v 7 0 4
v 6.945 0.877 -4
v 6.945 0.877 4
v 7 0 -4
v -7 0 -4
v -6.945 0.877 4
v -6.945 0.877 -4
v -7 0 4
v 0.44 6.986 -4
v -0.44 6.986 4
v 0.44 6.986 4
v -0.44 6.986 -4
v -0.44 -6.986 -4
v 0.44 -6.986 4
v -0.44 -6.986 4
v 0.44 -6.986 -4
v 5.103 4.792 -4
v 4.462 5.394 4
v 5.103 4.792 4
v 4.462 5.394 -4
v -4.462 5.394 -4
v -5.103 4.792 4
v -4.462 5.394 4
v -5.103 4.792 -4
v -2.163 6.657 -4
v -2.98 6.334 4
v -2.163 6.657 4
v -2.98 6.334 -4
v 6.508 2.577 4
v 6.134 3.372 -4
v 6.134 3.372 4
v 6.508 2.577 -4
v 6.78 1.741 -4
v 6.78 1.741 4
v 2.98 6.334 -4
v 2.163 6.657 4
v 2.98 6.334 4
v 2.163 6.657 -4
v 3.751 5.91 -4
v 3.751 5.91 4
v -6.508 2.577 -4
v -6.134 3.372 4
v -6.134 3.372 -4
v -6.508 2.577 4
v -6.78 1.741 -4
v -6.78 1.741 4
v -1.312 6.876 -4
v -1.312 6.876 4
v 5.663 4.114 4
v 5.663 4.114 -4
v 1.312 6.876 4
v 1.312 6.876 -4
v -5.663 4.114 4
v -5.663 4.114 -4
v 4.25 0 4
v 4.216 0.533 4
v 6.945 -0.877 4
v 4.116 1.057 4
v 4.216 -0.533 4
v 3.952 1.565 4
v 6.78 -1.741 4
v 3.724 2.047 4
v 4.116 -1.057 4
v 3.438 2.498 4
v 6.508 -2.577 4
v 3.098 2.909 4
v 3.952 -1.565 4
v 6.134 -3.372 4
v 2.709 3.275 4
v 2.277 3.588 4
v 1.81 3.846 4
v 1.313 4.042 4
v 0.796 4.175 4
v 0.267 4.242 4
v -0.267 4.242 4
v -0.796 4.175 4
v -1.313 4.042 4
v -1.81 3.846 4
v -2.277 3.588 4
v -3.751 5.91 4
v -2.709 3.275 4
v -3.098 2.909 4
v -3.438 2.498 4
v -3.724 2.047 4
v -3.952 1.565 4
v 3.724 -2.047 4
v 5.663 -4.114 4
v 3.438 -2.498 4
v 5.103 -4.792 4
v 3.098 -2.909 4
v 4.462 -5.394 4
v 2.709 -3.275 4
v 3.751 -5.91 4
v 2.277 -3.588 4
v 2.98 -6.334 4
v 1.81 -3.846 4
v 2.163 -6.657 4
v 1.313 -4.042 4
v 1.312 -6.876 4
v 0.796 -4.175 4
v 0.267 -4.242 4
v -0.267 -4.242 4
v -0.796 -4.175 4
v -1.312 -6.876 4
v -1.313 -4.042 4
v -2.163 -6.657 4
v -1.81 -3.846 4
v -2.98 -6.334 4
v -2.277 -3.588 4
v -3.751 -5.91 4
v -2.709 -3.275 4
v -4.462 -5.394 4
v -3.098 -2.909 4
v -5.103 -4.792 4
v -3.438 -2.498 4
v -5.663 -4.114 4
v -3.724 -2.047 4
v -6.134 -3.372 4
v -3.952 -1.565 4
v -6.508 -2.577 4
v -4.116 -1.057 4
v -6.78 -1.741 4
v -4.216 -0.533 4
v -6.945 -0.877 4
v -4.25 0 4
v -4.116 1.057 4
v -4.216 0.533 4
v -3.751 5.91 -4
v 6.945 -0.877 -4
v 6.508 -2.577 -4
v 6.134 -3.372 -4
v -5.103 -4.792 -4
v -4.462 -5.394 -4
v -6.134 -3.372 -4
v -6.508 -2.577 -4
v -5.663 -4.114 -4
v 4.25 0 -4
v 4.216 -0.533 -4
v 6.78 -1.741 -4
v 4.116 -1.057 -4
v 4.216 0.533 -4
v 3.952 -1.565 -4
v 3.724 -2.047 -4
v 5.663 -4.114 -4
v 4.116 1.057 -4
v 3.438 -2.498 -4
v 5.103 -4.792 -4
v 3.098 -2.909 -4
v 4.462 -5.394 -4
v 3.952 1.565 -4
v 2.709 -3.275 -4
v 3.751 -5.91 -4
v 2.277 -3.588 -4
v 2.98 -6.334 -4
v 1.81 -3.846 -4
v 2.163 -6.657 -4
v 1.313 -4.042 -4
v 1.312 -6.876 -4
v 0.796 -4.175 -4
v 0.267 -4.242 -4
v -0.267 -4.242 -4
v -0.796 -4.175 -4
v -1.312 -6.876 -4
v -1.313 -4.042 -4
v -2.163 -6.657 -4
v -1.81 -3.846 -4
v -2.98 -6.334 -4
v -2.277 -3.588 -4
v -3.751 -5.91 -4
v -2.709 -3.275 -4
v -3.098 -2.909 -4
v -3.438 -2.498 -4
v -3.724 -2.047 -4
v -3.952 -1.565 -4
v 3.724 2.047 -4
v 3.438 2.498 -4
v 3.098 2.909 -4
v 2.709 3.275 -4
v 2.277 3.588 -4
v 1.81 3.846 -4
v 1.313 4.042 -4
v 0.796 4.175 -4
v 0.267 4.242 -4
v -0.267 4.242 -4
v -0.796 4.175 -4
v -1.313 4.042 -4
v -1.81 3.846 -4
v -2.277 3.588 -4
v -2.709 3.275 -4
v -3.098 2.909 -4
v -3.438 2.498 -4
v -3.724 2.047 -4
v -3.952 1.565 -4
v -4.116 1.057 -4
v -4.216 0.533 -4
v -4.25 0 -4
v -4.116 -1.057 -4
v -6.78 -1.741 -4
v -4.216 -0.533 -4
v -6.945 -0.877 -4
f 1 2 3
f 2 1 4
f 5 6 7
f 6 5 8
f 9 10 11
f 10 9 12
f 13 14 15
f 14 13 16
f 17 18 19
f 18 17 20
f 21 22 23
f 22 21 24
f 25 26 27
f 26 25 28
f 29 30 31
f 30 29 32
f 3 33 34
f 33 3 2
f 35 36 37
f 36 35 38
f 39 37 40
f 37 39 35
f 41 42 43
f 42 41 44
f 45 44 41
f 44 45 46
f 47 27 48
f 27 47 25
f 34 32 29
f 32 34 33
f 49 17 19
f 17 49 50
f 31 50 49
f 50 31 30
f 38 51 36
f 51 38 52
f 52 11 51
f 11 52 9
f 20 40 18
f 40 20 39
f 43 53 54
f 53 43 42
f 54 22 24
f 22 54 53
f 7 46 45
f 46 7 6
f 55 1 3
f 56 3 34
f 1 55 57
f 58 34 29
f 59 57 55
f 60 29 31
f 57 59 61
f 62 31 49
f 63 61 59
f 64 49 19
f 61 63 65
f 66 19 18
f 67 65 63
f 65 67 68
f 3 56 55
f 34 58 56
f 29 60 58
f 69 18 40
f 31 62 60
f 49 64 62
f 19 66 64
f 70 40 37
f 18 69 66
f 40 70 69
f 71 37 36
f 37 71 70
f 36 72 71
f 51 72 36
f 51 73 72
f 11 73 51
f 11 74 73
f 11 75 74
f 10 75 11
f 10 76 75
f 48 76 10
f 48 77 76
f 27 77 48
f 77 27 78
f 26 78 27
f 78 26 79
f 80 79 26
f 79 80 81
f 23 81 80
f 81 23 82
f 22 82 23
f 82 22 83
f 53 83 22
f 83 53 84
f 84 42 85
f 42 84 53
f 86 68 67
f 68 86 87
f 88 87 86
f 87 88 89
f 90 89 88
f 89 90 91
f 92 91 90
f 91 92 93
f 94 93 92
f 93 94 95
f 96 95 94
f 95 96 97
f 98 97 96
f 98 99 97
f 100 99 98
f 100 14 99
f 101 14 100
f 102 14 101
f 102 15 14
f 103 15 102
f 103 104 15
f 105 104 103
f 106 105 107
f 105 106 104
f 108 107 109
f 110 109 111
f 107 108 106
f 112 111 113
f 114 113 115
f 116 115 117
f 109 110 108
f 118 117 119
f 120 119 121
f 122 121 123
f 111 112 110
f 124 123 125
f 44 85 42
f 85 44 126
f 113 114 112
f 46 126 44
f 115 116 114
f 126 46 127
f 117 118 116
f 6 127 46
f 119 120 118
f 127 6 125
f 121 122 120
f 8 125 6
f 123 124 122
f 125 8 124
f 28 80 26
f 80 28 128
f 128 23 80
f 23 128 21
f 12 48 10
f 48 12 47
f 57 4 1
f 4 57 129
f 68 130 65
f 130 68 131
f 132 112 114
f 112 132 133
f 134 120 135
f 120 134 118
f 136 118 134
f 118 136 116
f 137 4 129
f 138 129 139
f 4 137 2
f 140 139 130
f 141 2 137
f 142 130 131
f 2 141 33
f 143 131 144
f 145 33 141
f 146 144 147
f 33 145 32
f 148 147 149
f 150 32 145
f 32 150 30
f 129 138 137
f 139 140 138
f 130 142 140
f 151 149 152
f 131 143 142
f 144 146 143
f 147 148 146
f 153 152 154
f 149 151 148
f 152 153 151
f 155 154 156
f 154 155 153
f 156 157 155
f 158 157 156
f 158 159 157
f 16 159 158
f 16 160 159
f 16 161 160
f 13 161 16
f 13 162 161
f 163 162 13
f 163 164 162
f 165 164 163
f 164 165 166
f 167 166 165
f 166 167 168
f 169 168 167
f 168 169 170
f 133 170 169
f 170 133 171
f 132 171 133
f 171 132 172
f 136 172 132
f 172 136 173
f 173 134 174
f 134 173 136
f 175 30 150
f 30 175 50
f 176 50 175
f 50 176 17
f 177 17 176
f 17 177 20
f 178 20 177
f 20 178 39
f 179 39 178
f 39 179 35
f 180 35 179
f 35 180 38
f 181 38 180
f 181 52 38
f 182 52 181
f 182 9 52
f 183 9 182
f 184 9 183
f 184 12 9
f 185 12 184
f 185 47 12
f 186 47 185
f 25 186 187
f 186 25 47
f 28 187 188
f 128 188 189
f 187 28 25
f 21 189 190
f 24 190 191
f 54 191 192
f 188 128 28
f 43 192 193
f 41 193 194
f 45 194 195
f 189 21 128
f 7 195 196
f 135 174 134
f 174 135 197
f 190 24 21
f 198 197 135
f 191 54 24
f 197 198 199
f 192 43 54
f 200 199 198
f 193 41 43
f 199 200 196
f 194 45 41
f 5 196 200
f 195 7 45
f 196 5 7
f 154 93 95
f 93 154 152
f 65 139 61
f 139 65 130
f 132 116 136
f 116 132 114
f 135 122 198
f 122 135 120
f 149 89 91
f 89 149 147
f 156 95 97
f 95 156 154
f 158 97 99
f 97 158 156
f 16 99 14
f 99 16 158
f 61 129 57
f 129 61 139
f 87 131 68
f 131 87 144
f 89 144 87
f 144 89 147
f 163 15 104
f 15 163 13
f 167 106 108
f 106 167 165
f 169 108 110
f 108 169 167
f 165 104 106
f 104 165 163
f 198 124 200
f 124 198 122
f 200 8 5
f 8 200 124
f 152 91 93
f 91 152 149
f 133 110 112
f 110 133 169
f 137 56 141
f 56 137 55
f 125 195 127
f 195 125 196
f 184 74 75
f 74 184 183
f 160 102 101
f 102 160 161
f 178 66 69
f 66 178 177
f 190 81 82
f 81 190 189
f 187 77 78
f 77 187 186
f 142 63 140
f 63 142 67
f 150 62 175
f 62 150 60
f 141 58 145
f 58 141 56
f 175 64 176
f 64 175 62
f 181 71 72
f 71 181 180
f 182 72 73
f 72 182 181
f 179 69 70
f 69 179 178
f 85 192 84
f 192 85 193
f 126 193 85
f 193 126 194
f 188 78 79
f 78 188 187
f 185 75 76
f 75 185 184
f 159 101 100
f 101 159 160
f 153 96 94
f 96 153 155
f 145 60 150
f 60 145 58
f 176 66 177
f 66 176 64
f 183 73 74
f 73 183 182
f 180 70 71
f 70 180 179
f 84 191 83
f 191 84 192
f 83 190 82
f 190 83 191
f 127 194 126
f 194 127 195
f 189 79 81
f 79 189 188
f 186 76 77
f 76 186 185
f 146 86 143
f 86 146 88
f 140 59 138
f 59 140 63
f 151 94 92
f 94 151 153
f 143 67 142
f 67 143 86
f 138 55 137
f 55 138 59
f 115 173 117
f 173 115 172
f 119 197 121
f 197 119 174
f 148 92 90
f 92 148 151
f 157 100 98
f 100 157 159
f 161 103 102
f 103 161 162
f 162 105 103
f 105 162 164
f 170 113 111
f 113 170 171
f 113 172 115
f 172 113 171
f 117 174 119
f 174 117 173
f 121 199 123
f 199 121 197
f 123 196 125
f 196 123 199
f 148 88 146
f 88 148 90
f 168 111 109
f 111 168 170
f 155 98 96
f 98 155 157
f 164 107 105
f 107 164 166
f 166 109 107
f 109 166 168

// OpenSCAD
$fn = 50;


difference() {
	union() {
		translate(v = [0, 0, -4.0000000000]) {
			cylinder(h = 8, r = 7.0000000000);
		}
	}
	union() {
		translate(v = [0, 0, -100.0000000000]) {
			cylinder(h = 200, r = 4.2500000000);
		}
	}
}
